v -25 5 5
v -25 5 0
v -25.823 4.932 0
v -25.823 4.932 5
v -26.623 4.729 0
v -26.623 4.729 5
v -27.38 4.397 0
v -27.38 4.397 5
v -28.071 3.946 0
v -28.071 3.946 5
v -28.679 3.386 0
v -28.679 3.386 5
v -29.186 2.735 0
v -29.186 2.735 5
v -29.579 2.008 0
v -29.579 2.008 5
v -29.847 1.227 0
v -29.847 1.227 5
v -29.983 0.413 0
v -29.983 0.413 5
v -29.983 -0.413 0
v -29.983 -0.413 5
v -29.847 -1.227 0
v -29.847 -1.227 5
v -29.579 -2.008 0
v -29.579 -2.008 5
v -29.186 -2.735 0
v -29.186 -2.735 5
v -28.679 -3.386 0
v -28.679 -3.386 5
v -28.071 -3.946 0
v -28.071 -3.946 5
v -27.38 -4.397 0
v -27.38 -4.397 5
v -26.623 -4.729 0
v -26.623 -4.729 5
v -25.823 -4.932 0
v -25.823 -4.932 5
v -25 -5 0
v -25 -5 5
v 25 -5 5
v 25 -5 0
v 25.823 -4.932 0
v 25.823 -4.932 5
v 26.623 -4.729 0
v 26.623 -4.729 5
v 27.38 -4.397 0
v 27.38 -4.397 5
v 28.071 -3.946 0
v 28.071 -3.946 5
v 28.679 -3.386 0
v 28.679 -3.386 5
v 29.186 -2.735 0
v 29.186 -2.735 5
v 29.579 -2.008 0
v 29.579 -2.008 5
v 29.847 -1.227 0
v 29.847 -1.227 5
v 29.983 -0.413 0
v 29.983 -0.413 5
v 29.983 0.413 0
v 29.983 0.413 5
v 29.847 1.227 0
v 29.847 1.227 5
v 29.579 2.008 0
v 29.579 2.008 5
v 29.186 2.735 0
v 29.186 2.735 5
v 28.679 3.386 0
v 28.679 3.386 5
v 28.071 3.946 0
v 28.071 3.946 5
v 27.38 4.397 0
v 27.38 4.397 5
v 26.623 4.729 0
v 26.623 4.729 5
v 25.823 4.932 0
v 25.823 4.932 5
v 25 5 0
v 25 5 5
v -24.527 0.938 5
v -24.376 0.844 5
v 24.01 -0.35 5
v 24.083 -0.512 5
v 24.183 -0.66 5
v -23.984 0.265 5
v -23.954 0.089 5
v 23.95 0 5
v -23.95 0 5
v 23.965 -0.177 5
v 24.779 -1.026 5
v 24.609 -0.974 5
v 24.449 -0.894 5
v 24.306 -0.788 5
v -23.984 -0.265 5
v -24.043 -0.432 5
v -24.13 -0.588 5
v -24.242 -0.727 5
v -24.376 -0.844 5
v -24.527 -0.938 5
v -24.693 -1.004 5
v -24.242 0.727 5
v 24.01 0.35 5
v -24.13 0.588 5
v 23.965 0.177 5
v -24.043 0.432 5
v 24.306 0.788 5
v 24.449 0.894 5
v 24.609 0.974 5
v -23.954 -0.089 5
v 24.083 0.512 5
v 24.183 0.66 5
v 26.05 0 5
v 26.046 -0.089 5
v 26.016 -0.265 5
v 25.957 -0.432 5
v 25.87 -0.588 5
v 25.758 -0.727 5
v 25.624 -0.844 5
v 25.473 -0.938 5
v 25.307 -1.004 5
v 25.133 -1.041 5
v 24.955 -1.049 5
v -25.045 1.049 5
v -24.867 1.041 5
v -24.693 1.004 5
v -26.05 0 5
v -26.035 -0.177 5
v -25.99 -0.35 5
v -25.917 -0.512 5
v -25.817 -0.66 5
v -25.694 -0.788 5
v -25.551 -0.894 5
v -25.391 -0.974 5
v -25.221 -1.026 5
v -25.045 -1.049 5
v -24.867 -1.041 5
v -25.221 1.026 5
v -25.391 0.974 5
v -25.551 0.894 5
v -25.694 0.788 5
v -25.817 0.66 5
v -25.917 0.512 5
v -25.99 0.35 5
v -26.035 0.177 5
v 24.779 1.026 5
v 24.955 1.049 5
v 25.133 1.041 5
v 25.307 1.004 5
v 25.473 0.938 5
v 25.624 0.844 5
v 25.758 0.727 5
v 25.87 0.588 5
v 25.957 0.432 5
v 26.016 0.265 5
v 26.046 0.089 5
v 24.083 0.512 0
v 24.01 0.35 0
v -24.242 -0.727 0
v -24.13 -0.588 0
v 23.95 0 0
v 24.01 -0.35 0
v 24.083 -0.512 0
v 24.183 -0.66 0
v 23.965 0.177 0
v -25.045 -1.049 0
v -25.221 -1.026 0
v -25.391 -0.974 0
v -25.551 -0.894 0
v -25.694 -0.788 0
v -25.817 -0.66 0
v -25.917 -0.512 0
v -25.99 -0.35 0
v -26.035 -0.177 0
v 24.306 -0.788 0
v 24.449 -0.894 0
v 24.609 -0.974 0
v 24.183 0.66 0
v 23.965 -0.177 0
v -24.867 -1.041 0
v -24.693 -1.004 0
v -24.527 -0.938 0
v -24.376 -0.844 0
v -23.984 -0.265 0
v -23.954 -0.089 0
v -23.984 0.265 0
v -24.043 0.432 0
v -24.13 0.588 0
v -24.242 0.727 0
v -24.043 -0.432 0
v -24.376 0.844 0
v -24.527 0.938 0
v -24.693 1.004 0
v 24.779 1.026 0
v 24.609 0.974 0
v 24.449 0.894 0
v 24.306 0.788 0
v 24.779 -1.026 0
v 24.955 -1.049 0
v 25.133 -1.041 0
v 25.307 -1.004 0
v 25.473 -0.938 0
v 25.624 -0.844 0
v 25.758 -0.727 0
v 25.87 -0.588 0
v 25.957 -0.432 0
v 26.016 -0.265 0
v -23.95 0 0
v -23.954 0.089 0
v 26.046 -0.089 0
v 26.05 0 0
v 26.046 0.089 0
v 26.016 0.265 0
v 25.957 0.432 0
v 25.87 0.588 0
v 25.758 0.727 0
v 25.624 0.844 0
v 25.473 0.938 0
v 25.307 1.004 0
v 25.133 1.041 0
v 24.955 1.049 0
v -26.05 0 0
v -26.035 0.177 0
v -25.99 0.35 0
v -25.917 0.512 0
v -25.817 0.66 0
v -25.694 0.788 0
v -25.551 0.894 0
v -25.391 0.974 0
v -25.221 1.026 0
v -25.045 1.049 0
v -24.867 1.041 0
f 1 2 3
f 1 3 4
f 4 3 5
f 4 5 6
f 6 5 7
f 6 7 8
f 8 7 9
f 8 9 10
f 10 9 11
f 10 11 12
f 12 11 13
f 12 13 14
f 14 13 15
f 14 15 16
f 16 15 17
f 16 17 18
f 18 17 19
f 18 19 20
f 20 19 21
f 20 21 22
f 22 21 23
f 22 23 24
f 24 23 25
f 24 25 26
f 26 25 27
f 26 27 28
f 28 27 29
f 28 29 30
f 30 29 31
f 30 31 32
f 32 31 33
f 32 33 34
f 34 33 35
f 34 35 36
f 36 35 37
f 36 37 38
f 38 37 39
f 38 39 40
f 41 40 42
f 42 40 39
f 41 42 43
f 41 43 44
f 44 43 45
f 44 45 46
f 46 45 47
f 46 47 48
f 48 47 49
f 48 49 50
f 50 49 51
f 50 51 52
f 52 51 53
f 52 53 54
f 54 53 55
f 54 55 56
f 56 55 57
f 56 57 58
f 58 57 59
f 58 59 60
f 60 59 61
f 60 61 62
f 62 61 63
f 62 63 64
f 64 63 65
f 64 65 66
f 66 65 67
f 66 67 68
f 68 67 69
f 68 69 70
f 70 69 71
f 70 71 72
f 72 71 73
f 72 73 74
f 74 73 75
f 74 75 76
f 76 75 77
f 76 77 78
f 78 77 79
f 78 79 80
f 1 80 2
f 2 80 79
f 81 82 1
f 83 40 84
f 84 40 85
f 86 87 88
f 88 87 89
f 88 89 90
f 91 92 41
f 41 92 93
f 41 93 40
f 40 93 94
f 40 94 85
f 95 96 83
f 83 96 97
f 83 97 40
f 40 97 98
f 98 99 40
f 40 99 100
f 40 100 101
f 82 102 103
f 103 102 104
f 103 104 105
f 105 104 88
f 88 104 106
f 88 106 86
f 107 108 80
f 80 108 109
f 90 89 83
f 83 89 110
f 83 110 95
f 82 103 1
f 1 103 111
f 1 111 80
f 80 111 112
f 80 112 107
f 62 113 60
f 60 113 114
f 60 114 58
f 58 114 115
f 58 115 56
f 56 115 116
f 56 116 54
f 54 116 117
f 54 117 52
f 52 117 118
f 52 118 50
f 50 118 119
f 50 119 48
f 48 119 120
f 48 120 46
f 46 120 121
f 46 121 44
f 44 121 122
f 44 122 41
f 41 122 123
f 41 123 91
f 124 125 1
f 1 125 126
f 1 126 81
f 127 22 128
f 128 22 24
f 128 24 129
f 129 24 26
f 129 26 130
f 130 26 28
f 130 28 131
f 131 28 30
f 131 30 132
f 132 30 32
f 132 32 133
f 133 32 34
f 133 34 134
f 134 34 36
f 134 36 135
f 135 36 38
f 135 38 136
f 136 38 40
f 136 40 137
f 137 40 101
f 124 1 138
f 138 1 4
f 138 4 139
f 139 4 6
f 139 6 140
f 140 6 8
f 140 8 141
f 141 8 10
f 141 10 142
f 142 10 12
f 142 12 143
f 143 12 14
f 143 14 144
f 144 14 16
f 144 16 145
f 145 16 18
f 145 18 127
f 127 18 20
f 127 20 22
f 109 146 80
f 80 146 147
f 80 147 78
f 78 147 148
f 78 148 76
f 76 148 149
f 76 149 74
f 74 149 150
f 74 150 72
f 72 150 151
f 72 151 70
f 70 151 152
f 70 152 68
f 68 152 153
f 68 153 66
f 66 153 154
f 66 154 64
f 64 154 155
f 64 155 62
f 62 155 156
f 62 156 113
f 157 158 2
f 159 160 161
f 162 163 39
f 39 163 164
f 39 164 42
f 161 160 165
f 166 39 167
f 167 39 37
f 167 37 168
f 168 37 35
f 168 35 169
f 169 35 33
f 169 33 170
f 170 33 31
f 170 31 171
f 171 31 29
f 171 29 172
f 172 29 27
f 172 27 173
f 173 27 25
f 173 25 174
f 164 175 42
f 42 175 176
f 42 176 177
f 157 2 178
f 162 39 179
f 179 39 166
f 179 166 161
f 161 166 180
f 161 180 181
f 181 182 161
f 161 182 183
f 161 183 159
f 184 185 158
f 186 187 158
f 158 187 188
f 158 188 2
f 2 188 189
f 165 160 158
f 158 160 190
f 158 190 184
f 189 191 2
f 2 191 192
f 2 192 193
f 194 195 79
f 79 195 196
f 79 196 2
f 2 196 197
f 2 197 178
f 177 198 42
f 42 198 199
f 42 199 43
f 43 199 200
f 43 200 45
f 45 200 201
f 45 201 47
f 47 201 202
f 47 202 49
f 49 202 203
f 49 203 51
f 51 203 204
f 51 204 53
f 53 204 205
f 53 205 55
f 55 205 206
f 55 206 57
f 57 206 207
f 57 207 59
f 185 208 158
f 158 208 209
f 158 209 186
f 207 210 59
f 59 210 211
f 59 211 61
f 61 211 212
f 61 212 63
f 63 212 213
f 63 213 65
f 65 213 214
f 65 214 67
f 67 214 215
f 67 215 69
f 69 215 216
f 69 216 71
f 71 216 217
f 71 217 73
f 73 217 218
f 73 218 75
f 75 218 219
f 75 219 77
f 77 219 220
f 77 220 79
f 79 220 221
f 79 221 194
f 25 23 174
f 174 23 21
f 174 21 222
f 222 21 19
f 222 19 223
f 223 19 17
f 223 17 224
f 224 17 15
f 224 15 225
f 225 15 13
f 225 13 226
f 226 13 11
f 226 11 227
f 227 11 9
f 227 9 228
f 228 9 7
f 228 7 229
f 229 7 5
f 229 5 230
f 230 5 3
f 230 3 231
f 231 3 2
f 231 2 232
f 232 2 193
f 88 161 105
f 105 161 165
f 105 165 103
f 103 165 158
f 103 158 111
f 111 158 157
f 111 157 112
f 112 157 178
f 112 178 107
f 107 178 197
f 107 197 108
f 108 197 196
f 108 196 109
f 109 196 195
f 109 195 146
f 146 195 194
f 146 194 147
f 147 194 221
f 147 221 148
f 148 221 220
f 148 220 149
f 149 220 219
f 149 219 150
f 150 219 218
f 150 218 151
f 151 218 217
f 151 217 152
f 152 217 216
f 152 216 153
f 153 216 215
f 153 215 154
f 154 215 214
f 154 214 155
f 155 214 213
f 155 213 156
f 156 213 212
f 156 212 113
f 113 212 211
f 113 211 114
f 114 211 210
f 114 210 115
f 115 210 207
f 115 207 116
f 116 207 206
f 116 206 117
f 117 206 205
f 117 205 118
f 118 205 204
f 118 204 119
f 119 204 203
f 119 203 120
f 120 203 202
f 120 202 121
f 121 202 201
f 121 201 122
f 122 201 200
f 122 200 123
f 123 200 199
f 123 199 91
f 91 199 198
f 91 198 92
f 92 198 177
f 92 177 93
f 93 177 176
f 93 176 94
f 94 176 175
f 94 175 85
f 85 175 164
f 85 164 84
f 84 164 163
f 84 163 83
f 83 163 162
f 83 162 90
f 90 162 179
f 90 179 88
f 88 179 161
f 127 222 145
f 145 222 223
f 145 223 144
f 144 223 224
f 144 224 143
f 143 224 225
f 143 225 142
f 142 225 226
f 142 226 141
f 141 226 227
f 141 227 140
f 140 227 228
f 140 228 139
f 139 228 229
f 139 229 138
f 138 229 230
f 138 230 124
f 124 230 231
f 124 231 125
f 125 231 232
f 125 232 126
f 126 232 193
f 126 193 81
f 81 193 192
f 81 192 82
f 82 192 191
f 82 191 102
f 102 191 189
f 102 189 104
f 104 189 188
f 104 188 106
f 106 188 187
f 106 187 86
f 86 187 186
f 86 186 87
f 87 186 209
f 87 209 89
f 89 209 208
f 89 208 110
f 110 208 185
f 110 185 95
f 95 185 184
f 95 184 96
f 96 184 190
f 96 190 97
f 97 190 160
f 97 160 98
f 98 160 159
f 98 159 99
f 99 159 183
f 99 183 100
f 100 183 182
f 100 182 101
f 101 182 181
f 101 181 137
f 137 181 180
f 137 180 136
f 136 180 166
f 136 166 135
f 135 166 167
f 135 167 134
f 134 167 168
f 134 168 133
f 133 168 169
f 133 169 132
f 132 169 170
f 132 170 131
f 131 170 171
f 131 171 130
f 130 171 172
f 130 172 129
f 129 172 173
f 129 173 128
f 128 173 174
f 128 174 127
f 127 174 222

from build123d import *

# Parameters (mm, degrees)
EXTRUDE_1_DEPTH          = 5
CUT_EXTRUDE_3_DEPTH      = 31.822070015
CUT_EXTRUDE_3_DEPTH_BACK = 31.822070015
SKETCH_5_R               = 1.05


with BuildPart() as part:
    # ｽｹｯﾁ1 → ﾎﾞｽ - 押し出し1 (new body)
    with BuildSketch(Plane.XY):
        with BuildLine():
            ThreePointArc((-25, 5), (-30, 0), (-25, -5))
            Line((-25, -5), (-25, 5))
        make_face()
        with BuildLine():
            Line((-25, 5), (-25, -5))
            ThreePointArc((-25, -5), (-21.464466094, -3.535533906), (-20, 0))
            ThreePointArc((-20, 0), (-21.464466094, 3.535533906), (-25, 5))
        make_face()
        with BuildLine():
            ThreePointArc((-20, 0), (-21.464466094, -3.535533906), (-25, -5))
            Line((-25, -5), (25, -5))
            ThreePointArc((25, -5), (20, 0), (25, 5))
            Line((25, 5), (-25, 5))
            ThreePointArc((-25, 5), (-21.464466094, 3.535533906), (-20, 0))
        make_face()
        with BuildLine():
            ThreePointArc((25, 5), (20, 0), (25, -5))
            Line((25, -5), (25, 5))
        make_face()
        with BuildLine():
            Line((25, 5), (25, -5))
            ThreePointArc((25, -5), (28.535533906, -3.535533906), (30, 0))
            ThreePointArc((30, 0), (28.535533906, 3.535533906), (25, 5))
        make_face()
    extrude(amount=EXTRUDE_1_DEPTH)

    # ｽｹｯﾁ5 → ｶｯﾄ - 押し出し3 (cut, two sides: drawn at the far end of the back side and taken through both)
    with BuildSketch(Plane.XY.offset(-CUT_EXTRUDE_3_DEPTH_BACK)):
        with Locations((25, 0)):
            Circle(SKETCH_5_R)
        with Locations((-25, 0)):
            Circle(SKETCH_5_R)
    extrude(amount=CUT_EXTRUDE_3_DEPTH + CUT_EXTRUDE_3_DEPTH_BACK, mode=Mode.SUBTRACT)


solid = part.part
